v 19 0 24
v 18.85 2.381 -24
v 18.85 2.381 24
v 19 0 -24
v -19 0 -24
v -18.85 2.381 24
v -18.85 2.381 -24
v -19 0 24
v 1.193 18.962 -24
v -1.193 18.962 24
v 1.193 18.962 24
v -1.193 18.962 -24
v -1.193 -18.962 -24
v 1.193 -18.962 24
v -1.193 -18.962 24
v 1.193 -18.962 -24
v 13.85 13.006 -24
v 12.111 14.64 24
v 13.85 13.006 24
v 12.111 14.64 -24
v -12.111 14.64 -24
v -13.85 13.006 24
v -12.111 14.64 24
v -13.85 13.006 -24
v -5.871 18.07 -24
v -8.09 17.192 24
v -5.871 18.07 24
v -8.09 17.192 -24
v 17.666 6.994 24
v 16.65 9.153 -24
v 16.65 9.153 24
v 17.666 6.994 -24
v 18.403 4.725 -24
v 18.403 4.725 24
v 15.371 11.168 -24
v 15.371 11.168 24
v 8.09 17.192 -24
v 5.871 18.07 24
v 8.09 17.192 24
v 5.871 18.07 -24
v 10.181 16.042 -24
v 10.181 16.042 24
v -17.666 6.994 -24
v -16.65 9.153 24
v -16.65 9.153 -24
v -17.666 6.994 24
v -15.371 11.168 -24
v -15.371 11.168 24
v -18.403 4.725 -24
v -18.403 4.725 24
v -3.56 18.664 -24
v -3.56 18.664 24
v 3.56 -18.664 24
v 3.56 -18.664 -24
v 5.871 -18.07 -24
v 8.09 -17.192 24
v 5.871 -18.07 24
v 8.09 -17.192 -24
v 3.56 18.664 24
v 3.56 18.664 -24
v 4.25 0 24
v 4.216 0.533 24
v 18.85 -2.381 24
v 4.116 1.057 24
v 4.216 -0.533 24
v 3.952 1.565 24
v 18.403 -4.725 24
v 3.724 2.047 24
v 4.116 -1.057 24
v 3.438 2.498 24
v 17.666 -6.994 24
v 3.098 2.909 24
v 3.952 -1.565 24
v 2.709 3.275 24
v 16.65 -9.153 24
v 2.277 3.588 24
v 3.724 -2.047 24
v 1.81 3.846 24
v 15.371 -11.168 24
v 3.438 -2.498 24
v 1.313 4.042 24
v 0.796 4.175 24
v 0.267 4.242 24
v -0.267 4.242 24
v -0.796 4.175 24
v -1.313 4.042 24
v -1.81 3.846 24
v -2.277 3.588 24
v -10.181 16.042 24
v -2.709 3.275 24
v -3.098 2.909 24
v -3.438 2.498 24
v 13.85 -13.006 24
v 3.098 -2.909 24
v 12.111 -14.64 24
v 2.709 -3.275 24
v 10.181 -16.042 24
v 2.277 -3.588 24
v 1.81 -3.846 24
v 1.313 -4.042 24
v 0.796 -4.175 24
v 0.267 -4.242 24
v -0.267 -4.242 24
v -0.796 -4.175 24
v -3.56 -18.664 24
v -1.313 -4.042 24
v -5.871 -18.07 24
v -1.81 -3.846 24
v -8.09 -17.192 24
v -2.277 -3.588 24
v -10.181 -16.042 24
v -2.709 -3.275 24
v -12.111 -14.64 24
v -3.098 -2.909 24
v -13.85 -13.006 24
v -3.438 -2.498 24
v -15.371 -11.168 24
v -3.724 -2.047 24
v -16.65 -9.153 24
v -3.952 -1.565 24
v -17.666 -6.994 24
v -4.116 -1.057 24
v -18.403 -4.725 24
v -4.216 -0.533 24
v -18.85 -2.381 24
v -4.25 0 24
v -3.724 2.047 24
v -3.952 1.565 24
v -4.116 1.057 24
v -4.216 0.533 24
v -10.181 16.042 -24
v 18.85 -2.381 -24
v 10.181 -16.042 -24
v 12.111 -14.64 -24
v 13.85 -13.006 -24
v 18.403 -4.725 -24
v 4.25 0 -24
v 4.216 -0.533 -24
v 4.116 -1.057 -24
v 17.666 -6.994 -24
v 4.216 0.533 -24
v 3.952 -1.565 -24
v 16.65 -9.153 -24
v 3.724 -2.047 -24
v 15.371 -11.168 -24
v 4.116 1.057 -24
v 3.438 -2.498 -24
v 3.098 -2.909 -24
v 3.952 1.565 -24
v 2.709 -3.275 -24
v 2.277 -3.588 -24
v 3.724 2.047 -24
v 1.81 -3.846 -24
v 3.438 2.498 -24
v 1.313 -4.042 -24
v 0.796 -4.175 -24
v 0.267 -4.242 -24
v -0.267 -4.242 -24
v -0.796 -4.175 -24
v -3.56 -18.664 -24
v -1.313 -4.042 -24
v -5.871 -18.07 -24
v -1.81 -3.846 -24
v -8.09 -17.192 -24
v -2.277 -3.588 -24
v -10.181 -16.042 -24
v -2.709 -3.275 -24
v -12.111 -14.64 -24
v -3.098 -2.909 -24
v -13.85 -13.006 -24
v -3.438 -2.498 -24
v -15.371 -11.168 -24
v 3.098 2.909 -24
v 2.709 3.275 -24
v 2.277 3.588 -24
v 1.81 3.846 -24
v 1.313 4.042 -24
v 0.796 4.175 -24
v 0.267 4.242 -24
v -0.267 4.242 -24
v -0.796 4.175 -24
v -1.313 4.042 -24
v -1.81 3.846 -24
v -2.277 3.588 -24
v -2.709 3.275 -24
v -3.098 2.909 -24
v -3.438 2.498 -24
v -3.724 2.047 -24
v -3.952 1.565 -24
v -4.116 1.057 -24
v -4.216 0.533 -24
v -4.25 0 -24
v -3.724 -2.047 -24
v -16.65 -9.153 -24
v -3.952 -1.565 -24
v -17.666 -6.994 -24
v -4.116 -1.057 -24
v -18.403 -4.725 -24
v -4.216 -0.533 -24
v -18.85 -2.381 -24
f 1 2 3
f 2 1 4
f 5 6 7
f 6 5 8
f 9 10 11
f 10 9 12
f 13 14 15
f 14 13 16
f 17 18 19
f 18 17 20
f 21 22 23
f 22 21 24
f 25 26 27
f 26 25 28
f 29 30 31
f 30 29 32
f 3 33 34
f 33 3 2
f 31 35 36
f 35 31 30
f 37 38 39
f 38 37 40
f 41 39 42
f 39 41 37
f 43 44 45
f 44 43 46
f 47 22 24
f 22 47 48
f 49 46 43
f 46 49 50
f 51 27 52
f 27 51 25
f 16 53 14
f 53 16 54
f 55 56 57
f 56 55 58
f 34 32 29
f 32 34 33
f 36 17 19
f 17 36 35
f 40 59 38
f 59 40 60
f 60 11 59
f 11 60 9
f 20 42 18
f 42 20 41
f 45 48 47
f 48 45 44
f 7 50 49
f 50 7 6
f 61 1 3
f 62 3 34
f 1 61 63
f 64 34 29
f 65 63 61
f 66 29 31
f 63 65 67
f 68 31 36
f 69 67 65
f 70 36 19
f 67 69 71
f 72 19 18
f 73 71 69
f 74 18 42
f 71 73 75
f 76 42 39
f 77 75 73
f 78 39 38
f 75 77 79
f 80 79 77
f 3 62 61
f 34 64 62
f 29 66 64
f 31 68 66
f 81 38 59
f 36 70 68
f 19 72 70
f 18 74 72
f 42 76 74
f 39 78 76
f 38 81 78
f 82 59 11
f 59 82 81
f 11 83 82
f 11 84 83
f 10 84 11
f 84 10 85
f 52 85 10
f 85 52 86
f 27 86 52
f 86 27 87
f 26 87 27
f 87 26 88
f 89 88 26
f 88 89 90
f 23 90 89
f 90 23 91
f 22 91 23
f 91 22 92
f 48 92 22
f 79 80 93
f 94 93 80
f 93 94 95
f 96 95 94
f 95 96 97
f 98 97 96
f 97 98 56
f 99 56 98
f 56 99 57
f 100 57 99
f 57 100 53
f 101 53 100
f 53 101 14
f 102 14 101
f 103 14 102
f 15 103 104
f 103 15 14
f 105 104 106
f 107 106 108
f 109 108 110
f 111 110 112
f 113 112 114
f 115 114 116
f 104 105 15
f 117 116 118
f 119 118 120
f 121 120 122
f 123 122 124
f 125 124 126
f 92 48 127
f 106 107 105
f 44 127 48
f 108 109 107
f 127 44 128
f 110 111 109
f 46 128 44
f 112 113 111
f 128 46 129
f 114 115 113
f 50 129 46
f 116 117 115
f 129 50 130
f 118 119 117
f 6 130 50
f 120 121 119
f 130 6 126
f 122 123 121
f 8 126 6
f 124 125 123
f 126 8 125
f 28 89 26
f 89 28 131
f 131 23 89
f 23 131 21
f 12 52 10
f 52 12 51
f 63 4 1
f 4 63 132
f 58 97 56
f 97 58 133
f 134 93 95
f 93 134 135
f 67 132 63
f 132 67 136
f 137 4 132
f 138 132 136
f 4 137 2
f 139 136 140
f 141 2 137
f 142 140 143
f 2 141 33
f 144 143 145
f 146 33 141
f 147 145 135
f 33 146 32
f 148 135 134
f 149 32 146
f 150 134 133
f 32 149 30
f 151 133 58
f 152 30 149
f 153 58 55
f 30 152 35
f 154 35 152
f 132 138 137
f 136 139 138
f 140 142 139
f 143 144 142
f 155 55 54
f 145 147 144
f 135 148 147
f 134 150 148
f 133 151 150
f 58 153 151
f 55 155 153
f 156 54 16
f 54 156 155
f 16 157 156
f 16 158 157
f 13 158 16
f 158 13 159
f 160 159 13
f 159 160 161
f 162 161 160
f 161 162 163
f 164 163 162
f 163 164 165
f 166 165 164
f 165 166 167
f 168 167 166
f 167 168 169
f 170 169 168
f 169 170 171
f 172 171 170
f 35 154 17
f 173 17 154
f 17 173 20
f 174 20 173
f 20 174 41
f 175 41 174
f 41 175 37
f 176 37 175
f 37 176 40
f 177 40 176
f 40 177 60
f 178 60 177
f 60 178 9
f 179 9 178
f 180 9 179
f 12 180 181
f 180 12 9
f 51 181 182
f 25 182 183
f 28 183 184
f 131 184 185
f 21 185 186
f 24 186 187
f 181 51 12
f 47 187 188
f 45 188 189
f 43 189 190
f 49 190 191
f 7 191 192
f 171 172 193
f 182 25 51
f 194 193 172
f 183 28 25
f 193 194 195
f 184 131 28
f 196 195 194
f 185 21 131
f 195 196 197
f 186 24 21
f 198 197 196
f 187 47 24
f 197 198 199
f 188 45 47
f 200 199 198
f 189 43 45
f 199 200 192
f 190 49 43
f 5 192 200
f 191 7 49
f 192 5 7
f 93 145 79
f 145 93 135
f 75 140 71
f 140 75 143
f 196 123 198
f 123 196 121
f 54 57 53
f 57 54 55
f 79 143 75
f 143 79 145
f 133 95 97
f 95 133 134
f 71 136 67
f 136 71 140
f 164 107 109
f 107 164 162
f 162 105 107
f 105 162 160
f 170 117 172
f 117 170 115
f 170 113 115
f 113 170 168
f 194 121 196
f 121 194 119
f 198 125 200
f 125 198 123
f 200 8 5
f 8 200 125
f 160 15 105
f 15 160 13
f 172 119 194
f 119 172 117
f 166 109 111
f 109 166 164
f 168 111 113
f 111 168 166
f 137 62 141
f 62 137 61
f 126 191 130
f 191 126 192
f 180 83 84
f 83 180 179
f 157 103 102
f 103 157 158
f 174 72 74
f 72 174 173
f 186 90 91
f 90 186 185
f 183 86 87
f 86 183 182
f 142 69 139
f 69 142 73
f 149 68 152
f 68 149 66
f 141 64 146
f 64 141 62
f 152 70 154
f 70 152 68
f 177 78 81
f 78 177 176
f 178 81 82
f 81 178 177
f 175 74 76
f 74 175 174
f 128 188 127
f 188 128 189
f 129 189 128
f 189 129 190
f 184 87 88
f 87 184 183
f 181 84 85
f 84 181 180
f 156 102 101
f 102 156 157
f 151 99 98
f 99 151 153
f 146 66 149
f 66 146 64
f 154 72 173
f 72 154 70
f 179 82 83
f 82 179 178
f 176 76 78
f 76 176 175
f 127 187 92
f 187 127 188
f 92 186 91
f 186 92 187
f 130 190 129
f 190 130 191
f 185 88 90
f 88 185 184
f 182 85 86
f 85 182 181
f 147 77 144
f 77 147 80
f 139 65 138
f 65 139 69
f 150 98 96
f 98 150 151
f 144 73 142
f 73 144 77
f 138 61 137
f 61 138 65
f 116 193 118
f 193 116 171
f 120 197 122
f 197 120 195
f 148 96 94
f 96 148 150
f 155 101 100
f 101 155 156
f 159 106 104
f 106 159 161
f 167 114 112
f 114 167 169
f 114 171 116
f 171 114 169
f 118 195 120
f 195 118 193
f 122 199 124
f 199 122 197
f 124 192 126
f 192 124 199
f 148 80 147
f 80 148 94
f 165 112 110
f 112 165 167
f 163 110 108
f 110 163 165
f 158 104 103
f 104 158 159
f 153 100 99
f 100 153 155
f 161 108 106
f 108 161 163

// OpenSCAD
$fn = 50;


difference() {
	union() {
		translate(v = [0, 0, -24.0000000000]) {
			cylinder(h = 48, r = 19.0000000000);
		}
	}
	union() {
		translate(v = [0, 0, -100.0000000000]) {
			cylinder(h = 200, r = 4.2500000000);
		}
	}
}
